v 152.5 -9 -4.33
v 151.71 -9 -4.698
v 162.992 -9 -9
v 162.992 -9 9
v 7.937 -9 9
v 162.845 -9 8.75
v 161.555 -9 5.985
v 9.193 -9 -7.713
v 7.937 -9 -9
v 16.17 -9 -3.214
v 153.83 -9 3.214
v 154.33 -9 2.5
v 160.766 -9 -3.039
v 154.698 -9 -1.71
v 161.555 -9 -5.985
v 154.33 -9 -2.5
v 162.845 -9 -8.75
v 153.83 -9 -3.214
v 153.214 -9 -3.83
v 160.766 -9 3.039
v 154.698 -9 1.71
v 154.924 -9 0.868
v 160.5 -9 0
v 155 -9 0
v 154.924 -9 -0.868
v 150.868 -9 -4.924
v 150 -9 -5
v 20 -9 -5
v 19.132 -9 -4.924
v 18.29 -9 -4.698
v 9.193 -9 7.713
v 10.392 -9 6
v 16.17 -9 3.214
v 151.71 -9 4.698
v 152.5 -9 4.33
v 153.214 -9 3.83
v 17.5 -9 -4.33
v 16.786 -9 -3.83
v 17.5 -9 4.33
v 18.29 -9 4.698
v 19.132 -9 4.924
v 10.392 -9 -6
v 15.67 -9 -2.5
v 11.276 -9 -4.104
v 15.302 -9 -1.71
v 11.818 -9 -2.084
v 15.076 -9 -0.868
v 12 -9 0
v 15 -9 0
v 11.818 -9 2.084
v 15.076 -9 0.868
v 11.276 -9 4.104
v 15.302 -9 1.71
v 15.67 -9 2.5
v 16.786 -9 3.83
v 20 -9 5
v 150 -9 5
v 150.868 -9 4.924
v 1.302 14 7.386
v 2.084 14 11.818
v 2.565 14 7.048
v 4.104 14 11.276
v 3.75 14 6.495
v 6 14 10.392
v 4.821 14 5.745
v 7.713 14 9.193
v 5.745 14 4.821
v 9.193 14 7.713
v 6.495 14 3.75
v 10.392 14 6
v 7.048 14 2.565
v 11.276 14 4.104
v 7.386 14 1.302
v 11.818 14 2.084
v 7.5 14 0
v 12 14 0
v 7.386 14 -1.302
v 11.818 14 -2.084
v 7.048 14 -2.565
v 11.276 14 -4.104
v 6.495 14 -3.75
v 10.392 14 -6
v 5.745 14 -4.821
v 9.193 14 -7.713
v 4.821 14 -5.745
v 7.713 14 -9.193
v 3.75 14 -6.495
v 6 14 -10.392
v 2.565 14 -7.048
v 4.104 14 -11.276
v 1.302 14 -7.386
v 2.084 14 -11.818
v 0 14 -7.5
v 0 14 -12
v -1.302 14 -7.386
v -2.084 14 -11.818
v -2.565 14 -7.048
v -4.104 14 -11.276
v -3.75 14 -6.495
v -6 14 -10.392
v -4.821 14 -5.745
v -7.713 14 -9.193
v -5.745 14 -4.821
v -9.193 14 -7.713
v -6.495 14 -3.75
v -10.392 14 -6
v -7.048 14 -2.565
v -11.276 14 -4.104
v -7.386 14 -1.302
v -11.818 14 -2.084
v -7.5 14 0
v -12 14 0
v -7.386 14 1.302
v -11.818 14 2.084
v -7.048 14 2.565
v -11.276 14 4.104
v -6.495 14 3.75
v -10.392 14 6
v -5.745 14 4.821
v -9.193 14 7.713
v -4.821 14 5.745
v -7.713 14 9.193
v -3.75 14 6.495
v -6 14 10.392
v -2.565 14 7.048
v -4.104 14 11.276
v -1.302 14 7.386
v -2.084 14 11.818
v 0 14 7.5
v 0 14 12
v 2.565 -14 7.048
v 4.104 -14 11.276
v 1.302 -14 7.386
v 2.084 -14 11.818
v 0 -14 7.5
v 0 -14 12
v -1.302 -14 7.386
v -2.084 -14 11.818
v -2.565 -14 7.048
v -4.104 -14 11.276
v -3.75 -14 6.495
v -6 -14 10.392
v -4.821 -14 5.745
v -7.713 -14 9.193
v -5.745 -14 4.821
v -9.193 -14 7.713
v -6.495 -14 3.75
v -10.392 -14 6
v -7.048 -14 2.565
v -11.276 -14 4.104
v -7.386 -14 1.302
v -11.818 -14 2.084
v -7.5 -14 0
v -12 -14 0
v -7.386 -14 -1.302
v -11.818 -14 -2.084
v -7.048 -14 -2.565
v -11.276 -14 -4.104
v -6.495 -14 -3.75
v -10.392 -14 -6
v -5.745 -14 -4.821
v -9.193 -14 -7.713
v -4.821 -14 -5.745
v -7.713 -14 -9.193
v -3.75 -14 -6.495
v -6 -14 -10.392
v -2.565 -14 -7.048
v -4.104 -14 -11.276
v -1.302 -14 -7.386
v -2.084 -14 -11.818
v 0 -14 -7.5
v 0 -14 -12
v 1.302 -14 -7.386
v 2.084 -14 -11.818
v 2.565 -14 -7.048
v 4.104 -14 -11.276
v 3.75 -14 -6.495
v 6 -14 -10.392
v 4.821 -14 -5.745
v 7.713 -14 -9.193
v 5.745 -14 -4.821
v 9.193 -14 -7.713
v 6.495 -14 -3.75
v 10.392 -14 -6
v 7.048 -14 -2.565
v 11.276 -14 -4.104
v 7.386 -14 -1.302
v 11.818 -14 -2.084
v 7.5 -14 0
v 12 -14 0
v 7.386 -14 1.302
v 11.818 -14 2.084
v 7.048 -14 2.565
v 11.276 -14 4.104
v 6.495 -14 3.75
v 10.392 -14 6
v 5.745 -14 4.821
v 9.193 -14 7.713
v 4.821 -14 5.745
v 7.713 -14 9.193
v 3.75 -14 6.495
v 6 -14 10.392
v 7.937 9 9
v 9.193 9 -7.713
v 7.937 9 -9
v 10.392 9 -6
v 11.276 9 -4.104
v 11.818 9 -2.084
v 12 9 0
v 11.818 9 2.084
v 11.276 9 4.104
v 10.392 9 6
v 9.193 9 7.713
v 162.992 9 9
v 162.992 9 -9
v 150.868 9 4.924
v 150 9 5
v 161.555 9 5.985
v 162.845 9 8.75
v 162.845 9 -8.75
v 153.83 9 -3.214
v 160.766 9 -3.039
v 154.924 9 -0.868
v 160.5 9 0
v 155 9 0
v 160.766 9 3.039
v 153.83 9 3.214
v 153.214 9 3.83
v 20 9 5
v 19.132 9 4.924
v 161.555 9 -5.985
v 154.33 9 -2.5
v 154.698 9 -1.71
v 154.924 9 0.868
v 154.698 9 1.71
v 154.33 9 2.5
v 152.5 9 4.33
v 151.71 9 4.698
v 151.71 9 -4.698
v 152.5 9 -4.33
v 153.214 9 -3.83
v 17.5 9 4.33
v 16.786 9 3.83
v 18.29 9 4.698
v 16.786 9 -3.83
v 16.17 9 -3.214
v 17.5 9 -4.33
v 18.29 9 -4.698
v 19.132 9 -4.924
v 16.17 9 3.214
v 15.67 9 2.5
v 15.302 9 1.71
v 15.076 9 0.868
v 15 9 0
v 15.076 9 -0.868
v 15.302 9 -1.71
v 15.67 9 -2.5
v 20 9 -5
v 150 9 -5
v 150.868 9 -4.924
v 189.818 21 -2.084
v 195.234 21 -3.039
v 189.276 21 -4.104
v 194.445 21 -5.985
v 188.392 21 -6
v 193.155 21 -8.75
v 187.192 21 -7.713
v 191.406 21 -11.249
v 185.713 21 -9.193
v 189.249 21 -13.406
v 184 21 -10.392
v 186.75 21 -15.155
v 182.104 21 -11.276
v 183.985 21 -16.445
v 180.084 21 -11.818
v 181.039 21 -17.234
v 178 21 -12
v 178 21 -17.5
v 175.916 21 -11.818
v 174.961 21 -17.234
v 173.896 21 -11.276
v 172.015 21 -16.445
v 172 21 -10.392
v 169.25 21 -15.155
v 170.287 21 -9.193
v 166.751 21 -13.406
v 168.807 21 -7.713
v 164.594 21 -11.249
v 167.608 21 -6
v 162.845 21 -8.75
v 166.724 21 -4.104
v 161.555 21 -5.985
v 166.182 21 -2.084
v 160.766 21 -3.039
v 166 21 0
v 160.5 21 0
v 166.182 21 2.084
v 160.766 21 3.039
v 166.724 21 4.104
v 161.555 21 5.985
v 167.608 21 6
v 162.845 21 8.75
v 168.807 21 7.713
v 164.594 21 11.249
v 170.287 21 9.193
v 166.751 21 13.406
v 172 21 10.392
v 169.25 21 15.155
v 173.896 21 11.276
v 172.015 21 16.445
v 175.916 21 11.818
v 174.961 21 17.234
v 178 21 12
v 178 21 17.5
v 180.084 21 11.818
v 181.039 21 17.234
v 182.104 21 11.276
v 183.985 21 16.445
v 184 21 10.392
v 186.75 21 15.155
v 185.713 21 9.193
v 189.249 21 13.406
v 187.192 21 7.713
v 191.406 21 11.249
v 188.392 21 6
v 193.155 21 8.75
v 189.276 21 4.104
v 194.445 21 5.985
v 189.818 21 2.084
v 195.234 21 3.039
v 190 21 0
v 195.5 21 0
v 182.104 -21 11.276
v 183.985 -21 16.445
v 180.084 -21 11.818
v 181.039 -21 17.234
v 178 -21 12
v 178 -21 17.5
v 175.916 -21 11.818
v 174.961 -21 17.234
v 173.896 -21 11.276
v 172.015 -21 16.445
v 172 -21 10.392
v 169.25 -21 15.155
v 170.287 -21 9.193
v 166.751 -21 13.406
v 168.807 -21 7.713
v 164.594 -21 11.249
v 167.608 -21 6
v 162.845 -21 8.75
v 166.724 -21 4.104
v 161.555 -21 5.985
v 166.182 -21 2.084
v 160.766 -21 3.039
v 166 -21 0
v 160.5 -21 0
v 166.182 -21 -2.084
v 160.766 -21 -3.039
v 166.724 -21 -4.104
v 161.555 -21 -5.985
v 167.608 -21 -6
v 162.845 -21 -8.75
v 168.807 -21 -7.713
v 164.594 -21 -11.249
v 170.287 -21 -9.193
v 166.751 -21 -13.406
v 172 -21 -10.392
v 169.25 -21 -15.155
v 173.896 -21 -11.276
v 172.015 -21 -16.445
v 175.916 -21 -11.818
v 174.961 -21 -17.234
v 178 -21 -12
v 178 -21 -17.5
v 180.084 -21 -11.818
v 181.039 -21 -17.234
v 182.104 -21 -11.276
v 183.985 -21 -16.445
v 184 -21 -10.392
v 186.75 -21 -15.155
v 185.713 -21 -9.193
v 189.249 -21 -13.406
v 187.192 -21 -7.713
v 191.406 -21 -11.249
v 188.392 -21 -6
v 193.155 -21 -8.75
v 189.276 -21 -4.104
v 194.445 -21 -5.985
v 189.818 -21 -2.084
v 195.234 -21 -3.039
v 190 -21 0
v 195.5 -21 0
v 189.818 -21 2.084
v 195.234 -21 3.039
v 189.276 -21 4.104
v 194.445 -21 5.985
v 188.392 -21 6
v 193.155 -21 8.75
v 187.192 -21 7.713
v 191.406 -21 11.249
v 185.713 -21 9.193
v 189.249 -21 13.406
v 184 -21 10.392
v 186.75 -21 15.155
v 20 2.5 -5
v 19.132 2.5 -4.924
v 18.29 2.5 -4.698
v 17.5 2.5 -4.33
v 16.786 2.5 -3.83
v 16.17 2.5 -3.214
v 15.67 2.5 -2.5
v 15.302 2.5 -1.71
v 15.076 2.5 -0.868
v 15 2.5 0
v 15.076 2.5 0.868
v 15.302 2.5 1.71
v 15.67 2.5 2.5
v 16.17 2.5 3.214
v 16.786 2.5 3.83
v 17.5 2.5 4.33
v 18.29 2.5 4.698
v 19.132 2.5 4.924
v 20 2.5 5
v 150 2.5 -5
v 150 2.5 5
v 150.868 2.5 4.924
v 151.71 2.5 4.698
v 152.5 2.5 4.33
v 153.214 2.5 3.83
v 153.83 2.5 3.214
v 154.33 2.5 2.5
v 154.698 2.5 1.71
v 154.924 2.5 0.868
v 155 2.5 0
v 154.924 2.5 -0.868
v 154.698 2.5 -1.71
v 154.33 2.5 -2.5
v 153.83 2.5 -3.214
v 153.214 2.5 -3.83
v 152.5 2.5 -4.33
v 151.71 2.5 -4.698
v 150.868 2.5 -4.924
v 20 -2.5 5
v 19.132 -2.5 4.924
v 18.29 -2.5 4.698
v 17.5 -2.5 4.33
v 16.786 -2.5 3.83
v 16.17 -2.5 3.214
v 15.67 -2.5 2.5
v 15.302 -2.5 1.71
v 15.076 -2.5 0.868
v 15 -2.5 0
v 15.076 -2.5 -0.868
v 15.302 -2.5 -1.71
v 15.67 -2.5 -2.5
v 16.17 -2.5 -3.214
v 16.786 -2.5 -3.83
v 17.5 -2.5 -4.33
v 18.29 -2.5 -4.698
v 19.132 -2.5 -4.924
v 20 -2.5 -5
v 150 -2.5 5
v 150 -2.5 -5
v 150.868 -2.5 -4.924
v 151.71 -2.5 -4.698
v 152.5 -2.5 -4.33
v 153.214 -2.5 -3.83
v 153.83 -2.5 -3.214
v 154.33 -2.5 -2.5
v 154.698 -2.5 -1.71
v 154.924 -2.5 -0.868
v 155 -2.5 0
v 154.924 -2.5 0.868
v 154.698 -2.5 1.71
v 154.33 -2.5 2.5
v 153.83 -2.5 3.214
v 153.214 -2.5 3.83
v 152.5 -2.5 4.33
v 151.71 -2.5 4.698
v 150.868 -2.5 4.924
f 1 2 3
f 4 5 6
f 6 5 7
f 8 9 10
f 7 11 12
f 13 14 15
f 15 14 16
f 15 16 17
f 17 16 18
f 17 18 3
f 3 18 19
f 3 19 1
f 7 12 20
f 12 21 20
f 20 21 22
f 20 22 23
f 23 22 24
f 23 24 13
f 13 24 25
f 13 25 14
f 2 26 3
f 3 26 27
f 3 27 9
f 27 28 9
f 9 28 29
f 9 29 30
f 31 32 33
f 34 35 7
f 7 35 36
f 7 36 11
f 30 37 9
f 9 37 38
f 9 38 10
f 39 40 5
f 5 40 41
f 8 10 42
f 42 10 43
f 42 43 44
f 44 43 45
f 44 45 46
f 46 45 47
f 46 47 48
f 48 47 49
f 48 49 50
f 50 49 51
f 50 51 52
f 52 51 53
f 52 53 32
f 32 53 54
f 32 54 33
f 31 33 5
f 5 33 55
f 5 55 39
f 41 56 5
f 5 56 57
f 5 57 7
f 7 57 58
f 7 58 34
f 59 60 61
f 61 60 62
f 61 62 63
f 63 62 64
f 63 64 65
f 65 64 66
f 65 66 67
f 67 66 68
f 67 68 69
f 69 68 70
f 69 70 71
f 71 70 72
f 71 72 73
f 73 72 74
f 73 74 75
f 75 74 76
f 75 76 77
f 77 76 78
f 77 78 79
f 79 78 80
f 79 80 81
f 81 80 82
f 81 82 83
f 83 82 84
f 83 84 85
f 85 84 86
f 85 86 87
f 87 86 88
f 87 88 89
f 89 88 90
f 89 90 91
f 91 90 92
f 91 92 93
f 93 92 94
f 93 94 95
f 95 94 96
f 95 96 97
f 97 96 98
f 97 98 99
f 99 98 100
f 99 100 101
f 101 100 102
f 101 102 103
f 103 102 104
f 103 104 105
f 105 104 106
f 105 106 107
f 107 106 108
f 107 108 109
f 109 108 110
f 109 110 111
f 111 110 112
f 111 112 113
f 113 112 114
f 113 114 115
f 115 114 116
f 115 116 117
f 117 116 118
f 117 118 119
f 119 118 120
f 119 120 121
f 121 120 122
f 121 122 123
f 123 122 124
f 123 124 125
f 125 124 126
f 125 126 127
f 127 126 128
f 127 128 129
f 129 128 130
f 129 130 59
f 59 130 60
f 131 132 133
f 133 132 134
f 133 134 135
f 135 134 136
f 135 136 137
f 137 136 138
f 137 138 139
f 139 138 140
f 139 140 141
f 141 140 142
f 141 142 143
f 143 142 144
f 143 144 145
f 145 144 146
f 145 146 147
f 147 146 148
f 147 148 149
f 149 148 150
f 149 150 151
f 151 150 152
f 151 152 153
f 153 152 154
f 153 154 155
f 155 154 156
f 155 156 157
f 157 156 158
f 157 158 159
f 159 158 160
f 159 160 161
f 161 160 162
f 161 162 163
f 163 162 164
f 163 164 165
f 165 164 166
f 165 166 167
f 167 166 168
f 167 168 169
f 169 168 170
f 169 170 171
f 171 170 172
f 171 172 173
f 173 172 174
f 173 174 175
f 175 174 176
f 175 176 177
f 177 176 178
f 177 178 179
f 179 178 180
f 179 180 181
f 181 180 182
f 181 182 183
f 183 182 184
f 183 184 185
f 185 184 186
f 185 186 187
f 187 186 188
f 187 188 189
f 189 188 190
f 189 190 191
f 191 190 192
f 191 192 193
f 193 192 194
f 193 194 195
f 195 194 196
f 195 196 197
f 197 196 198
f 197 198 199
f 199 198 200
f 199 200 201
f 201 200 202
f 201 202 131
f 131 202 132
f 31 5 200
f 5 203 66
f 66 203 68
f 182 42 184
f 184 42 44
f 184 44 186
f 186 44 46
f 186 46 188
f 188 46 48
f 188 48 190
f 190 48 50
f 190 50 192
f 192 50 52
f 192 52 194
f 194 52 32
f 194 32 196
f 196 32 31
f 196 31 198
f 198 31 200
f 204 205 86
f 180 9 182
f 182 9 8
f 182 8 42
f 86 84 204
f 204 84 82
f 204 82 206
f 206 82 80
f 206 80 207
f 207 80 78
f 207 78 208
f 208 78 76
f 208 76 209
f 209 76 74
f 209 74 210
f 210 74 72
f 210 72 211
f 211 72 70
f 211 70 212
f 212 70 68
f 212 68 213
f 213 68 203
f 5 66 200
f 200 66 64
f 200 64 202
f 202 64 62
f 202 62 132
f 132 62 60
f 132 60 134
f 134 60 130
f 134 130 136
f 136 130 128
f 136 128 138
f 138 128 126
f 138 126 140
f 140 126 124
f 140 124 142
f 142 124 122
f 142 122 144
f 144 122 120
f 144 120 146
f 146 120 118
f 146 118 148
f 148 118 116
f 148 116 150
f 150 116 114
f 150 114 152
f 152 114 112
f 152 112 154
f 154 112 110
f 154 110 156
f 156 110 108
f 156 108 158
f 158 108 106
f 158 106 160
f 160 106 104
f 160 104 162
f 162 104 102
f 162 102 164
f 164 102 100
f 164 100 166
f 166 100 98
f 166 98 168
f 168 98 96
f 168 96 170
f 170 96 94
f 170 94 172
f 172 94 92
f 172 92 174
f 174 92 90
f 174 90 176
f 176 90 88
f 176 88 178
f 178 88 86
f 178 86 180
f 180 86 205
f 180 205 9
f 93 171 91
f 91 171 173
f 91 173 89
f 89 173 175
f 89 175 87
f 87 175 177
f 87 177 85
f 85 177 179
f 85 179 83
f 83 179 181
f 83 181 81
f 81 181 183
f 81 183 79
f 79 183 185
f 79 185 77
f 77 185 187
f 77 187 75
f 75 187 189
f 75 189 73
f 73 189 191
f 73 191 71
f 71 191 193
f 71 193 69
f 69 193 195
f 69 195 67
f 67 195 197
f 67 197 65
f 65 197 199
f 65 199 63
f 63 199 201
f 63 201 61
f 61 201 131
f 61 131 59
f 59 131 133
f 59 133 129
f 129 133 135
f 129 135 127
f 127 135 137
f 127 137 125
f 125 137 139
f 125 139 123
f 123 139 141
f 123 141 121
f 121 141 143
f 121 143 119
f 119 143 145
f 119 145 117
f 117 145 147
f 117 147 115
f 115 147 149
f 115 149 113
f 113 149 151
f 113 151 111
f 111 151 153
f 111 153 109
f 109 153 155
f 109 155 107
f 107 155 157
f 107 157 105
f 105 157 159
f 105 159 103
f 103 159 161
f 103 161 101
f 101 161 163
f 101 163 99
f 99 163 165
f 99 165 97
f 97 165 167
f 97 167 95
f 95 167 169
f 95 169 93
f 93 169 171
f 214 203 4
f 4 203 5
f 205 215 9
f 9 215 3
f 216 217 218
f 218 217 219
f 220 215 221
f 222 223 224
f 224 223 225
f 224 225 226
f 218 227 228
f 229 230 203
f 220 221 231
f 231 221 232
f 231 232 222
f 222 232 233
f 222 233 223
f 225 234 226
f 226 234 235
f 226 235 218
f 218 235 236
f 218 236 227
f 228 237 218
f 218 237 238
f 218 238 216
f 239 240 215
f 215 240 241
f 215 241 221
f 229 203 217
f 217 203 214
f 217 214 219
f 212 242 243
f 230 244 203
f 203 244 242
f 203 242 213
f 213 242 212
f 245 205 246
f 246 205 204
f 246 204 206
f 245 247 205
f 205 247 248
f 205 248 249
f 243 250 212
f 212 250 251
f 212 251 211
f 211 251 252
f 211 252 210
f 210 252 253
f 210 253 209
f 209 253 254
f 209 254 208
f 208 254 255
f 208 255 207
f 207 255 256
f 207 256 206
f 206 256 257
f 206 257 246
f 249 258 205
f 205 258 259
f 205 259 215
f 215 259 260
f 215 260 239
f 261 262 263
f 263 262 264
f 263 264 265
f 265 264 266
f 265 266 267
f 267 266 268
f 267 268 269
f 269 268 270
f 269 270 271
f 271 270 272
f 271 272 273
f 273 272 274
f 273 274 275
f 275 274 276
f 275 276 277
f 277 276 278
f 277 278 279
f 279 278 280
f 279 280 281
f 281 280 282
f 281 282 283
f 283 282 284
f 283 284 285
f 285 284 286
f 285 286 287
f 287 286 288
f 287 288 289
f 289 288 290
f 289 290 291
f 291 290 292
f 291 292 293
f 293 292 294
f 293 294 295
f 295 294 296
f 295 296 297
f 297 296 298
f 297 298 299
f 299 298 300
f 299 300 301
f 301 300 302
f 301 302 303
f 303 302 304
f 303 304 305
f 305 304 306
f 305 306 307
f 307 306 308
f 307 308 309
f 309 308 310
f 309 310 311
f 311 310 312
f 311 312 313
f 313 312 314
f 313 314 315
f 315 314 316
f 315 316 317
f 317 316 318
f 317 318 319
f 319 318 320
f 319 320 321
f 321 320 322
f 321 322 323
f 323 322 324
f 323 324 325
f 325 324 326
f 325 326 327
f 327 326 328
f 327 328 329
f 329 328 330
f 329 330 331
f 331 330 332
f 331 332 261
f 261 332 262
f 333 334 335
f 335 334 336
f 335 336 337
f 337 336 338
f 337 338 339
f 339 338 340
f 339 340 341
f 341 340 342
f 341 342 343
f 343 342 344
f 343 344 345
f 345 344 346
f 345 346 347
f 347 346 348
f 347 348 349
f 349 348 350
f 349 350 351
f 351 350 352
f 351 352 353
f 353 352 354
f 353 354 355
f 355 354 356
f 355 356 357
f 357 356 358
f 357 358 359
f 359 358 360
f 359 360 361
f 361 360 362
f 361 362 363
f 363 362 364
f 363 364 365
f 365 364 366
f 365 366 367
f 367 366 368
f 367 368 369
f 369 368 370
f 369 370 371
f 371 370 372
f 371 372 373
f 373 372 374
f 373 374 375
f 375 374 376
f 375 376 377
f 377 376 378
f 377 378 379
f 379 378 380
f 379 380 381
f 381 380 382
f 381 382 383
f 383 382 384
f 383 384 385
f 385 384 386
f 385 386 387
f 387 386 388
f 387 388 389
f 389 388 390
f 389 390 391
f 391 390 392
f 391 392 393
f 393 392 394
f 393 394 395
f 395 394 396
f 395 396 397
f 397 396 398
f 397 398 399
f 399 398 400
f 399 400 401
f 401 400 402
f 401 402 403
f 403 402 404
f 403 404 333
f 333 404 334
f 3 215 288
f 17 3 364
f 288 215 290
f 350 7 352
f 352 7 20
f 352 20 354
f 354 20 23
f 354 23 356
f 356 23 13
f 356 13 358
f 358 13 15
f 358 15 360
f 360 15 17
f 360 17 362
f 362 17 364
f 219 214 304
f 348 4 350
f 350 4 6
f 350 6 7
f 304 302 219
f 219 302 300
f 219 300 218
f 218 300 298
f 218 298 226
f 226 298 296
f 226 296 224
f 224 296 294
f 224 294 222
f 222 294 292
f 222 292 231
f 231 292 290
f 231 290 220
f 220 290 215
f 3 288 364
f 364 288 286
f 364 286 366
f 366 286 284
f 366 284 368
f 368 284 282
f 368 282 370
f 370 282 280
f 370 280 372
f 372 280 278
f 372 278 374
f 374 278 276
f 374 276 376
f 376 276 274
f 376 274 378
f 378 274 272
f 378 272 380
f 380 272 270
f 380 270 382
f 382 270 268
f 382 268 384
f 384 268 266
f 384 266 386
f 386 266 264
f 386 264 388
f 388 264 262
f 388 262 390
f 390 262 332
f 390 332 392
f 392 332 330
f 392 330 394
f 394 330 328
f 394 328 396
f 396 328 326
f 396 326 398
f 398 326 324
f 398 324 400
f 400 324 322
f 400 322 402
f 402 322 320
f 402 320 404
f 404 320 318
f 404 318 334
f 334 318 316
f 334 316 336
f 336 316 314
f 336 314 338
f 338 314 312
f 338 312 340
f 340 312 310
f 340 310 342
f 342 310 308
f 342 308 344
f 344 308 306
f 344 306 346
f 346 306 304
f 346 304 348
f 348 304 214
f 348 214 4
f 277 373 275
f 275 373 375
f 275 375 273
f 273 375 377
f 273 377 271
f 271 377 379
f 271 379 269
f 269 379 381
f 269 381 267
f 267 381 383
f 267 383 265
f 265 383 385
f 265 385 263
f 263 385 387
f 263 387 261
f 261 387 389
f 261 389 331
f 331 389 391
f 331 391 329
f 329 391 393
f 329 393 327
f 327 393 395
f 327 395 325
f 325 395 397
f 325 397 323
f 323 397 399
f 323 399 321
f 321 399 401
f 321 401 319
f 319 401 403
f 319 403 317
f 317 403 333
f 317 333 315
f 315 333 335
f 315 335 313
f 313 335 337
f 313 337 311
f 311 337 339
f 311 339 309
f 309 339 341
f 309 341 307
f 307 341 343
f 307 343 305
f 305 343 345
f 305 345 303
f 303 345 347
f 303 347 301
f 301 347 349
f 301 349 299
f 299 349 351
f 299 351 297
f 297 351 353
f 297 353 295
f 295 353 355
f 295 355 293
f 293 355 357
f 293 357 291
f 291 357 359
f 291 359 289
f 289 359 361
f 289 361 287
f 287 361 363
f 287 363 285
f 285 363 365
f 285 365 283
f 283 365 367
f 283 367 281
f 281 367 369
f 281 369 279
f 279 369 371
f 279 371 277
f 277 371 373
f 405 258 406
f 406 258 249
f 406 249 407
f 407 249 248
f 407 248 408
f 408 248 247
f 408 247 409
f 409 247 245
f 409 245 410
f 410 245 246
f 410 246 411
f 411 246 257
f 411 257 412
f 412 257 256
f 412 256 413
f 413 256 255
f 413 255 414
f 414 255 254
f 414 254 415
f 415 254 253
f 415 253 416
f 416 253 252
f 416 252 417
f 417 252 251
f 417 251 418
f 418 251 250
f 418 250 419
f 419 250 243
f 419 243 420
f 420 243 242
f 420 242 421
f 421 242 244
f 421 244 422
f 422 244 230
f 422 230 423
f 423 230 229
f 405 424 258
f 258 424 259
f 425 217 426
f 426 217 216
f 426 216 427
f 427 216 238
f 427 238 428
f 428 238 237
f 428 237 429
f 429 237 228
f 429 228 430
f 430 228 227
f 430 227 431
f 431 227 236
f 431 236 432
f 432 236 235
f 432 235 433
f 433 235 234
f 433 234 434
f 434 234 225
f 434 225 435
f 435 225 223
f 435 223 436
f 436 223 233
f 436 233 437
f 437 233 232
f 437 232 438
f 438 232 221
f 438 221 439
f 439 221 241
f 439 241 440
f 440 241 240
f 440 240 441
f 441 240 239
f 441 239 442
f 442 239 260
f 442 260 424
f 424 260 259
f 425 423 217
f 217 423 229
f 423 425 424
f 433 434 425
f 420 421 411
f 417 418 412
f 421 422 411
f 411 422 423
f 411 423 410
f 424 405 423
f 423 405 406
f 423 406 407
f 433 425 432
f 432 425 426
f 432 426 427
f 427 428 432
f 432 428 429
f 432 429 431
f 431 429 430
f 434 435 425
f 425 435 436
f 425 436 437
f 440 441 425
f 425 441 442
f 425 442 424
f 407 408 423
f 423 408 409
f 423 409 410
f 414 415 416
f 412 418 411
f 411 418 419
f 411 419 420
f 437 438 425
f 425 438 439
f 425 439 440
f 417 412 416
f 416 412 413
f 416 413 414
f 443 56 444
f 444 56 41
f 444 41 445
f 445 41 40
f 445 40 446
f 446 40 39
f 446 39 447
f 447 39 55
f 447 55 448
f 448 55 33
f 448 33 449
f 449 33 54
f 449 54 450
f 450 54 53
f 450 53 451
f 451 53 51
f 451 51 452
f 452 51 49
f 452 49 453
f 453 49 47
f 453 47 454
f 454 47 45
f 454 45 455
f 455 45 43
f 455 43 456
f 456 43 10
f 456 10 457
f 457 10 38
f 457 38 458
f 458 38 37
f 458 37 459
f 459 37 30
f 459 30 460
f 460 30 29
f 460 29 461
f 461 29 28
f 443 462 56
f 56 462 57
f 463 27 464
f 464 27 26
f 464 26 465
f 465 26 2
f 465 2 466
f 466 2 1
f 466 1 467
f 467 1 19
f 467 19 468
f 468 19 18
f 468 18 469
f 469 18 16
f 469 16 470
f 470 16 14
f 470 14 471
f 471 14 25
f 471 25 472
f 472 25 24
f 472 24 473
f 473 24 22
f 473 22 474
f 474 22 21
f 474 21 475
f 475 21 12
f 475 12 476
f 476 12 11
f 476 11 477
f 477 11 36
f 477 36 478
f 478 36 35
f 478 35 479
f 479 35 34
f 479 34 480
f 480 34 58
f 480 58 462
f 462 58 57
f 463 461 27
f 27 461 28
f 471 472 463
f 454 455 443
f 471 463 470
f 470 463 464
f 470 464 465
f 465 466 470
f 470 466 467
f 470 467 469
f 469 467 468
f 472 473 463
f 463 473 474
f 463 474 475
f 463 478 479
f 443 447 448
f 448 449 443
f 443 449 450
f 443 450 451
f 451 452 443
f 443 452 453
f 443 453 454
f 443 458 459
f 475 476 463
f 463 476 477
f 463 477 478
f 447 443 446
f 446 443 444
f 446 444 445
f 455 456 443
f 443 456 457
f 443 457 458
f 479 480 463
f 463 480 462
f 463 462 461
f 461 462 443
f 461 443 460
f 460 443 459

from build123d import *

# Parameters (mm, degrees)
SKETCH1_R           = 12
SKETCH1_R_2         = 7.5
BOSS_EXTRUDE1_DEPTH = 14
SKETCH6_R           = 17.5
SKETCH6_R_2         = 12
BOSS_EXTRUDE4_DEPTH = 21
BOSS_EXTRUDE5_DEPTH = 9
CUT_EXTRUDE4_DEPTH  = 6.5


with BuildPart() as part:
    # Sketch1 → Boss-Extrude1 (new body, symmetric)
    with BuildSketch(Plane(origin=(0, 0, 0), x_dir=(1, 0, 0), z_dir=(0, 1, 0))):
        Circle(SKETCH1_R)
        Circle(SKETCH1_R_2, mode=Mode.SUBTRACT)
    extrude(amount=BOSS_EXTRUDE1_DEPTH, both=True)



with BuildPart() as body_2:
    # Sketch6 → Boss-Extrude4 (new body, symmetric)
    with BuildSketch(Plane(origin=(0, 0, 0), x_dir=(1, 0, 0), z_dir=(0, 1, 0))):
        with Locations((178, 0)):
            Circle(SKETCH6_R)
        with Locations((178, 0)):
            Circle(SKETCH6_R_2, mode=Mode.SUBTRACT)
    extrude(amount=BOSS_EXTRUDE4_DEPTH, both=True)


with BuildPart() as part_1:
    add(part.part)

    add(body_2.part)  # Boss-Extrude5 merges body 2
    # Sketch14 → Boss-Extrude5 (add, symmetric)
    with BuildSketch(Plane(origin=(0, 0, 0), x_dir=(1, 0, 0), z_dir=(0, 1, 0))):
        with BuildLine():
            Line((7.937253933, -9), (162.99166898, -9))
            ThreePointArc((162.99166898, -9), (160.5, 0), (162.99166898, 9))
            Line((162.99166898, 9), (7.937253933, 9))
            ThreePointArc((7.937253933, 9), (12, 0), (7.937253933, -9))
        make_face()
    extrude(amount=BOSS_EXTRUDE5_DEPTH, both=True)

    # Sketch16 → Cut-Extrude4 (cut)
    with BuildSketch(Plane(origin=(0, 9, 0), x_dir=(1, 0, 0), z_dir=(0, 1, 0))):
        with BuildLine():
            Line((20, 5), (150, 5))
            ThreePointArc((150, 5), (155, 0), (150, -5))
            Line((150, -5), (20, -5))
            ThreePointArc((20, -5), (15, 0), (20, 5))
        make_face()
    cut_extrude4 = extrude(amount=-CUT_EXTRUDE4_DEPTH, mode=Mode.SUBTRACT)

    # Mirror1: Cut-Extrude4 across plane
    add(cut_extrude4.mirror(Plane.ZX), mode=Mode.SUBTRACT)


solid = part_1.part
